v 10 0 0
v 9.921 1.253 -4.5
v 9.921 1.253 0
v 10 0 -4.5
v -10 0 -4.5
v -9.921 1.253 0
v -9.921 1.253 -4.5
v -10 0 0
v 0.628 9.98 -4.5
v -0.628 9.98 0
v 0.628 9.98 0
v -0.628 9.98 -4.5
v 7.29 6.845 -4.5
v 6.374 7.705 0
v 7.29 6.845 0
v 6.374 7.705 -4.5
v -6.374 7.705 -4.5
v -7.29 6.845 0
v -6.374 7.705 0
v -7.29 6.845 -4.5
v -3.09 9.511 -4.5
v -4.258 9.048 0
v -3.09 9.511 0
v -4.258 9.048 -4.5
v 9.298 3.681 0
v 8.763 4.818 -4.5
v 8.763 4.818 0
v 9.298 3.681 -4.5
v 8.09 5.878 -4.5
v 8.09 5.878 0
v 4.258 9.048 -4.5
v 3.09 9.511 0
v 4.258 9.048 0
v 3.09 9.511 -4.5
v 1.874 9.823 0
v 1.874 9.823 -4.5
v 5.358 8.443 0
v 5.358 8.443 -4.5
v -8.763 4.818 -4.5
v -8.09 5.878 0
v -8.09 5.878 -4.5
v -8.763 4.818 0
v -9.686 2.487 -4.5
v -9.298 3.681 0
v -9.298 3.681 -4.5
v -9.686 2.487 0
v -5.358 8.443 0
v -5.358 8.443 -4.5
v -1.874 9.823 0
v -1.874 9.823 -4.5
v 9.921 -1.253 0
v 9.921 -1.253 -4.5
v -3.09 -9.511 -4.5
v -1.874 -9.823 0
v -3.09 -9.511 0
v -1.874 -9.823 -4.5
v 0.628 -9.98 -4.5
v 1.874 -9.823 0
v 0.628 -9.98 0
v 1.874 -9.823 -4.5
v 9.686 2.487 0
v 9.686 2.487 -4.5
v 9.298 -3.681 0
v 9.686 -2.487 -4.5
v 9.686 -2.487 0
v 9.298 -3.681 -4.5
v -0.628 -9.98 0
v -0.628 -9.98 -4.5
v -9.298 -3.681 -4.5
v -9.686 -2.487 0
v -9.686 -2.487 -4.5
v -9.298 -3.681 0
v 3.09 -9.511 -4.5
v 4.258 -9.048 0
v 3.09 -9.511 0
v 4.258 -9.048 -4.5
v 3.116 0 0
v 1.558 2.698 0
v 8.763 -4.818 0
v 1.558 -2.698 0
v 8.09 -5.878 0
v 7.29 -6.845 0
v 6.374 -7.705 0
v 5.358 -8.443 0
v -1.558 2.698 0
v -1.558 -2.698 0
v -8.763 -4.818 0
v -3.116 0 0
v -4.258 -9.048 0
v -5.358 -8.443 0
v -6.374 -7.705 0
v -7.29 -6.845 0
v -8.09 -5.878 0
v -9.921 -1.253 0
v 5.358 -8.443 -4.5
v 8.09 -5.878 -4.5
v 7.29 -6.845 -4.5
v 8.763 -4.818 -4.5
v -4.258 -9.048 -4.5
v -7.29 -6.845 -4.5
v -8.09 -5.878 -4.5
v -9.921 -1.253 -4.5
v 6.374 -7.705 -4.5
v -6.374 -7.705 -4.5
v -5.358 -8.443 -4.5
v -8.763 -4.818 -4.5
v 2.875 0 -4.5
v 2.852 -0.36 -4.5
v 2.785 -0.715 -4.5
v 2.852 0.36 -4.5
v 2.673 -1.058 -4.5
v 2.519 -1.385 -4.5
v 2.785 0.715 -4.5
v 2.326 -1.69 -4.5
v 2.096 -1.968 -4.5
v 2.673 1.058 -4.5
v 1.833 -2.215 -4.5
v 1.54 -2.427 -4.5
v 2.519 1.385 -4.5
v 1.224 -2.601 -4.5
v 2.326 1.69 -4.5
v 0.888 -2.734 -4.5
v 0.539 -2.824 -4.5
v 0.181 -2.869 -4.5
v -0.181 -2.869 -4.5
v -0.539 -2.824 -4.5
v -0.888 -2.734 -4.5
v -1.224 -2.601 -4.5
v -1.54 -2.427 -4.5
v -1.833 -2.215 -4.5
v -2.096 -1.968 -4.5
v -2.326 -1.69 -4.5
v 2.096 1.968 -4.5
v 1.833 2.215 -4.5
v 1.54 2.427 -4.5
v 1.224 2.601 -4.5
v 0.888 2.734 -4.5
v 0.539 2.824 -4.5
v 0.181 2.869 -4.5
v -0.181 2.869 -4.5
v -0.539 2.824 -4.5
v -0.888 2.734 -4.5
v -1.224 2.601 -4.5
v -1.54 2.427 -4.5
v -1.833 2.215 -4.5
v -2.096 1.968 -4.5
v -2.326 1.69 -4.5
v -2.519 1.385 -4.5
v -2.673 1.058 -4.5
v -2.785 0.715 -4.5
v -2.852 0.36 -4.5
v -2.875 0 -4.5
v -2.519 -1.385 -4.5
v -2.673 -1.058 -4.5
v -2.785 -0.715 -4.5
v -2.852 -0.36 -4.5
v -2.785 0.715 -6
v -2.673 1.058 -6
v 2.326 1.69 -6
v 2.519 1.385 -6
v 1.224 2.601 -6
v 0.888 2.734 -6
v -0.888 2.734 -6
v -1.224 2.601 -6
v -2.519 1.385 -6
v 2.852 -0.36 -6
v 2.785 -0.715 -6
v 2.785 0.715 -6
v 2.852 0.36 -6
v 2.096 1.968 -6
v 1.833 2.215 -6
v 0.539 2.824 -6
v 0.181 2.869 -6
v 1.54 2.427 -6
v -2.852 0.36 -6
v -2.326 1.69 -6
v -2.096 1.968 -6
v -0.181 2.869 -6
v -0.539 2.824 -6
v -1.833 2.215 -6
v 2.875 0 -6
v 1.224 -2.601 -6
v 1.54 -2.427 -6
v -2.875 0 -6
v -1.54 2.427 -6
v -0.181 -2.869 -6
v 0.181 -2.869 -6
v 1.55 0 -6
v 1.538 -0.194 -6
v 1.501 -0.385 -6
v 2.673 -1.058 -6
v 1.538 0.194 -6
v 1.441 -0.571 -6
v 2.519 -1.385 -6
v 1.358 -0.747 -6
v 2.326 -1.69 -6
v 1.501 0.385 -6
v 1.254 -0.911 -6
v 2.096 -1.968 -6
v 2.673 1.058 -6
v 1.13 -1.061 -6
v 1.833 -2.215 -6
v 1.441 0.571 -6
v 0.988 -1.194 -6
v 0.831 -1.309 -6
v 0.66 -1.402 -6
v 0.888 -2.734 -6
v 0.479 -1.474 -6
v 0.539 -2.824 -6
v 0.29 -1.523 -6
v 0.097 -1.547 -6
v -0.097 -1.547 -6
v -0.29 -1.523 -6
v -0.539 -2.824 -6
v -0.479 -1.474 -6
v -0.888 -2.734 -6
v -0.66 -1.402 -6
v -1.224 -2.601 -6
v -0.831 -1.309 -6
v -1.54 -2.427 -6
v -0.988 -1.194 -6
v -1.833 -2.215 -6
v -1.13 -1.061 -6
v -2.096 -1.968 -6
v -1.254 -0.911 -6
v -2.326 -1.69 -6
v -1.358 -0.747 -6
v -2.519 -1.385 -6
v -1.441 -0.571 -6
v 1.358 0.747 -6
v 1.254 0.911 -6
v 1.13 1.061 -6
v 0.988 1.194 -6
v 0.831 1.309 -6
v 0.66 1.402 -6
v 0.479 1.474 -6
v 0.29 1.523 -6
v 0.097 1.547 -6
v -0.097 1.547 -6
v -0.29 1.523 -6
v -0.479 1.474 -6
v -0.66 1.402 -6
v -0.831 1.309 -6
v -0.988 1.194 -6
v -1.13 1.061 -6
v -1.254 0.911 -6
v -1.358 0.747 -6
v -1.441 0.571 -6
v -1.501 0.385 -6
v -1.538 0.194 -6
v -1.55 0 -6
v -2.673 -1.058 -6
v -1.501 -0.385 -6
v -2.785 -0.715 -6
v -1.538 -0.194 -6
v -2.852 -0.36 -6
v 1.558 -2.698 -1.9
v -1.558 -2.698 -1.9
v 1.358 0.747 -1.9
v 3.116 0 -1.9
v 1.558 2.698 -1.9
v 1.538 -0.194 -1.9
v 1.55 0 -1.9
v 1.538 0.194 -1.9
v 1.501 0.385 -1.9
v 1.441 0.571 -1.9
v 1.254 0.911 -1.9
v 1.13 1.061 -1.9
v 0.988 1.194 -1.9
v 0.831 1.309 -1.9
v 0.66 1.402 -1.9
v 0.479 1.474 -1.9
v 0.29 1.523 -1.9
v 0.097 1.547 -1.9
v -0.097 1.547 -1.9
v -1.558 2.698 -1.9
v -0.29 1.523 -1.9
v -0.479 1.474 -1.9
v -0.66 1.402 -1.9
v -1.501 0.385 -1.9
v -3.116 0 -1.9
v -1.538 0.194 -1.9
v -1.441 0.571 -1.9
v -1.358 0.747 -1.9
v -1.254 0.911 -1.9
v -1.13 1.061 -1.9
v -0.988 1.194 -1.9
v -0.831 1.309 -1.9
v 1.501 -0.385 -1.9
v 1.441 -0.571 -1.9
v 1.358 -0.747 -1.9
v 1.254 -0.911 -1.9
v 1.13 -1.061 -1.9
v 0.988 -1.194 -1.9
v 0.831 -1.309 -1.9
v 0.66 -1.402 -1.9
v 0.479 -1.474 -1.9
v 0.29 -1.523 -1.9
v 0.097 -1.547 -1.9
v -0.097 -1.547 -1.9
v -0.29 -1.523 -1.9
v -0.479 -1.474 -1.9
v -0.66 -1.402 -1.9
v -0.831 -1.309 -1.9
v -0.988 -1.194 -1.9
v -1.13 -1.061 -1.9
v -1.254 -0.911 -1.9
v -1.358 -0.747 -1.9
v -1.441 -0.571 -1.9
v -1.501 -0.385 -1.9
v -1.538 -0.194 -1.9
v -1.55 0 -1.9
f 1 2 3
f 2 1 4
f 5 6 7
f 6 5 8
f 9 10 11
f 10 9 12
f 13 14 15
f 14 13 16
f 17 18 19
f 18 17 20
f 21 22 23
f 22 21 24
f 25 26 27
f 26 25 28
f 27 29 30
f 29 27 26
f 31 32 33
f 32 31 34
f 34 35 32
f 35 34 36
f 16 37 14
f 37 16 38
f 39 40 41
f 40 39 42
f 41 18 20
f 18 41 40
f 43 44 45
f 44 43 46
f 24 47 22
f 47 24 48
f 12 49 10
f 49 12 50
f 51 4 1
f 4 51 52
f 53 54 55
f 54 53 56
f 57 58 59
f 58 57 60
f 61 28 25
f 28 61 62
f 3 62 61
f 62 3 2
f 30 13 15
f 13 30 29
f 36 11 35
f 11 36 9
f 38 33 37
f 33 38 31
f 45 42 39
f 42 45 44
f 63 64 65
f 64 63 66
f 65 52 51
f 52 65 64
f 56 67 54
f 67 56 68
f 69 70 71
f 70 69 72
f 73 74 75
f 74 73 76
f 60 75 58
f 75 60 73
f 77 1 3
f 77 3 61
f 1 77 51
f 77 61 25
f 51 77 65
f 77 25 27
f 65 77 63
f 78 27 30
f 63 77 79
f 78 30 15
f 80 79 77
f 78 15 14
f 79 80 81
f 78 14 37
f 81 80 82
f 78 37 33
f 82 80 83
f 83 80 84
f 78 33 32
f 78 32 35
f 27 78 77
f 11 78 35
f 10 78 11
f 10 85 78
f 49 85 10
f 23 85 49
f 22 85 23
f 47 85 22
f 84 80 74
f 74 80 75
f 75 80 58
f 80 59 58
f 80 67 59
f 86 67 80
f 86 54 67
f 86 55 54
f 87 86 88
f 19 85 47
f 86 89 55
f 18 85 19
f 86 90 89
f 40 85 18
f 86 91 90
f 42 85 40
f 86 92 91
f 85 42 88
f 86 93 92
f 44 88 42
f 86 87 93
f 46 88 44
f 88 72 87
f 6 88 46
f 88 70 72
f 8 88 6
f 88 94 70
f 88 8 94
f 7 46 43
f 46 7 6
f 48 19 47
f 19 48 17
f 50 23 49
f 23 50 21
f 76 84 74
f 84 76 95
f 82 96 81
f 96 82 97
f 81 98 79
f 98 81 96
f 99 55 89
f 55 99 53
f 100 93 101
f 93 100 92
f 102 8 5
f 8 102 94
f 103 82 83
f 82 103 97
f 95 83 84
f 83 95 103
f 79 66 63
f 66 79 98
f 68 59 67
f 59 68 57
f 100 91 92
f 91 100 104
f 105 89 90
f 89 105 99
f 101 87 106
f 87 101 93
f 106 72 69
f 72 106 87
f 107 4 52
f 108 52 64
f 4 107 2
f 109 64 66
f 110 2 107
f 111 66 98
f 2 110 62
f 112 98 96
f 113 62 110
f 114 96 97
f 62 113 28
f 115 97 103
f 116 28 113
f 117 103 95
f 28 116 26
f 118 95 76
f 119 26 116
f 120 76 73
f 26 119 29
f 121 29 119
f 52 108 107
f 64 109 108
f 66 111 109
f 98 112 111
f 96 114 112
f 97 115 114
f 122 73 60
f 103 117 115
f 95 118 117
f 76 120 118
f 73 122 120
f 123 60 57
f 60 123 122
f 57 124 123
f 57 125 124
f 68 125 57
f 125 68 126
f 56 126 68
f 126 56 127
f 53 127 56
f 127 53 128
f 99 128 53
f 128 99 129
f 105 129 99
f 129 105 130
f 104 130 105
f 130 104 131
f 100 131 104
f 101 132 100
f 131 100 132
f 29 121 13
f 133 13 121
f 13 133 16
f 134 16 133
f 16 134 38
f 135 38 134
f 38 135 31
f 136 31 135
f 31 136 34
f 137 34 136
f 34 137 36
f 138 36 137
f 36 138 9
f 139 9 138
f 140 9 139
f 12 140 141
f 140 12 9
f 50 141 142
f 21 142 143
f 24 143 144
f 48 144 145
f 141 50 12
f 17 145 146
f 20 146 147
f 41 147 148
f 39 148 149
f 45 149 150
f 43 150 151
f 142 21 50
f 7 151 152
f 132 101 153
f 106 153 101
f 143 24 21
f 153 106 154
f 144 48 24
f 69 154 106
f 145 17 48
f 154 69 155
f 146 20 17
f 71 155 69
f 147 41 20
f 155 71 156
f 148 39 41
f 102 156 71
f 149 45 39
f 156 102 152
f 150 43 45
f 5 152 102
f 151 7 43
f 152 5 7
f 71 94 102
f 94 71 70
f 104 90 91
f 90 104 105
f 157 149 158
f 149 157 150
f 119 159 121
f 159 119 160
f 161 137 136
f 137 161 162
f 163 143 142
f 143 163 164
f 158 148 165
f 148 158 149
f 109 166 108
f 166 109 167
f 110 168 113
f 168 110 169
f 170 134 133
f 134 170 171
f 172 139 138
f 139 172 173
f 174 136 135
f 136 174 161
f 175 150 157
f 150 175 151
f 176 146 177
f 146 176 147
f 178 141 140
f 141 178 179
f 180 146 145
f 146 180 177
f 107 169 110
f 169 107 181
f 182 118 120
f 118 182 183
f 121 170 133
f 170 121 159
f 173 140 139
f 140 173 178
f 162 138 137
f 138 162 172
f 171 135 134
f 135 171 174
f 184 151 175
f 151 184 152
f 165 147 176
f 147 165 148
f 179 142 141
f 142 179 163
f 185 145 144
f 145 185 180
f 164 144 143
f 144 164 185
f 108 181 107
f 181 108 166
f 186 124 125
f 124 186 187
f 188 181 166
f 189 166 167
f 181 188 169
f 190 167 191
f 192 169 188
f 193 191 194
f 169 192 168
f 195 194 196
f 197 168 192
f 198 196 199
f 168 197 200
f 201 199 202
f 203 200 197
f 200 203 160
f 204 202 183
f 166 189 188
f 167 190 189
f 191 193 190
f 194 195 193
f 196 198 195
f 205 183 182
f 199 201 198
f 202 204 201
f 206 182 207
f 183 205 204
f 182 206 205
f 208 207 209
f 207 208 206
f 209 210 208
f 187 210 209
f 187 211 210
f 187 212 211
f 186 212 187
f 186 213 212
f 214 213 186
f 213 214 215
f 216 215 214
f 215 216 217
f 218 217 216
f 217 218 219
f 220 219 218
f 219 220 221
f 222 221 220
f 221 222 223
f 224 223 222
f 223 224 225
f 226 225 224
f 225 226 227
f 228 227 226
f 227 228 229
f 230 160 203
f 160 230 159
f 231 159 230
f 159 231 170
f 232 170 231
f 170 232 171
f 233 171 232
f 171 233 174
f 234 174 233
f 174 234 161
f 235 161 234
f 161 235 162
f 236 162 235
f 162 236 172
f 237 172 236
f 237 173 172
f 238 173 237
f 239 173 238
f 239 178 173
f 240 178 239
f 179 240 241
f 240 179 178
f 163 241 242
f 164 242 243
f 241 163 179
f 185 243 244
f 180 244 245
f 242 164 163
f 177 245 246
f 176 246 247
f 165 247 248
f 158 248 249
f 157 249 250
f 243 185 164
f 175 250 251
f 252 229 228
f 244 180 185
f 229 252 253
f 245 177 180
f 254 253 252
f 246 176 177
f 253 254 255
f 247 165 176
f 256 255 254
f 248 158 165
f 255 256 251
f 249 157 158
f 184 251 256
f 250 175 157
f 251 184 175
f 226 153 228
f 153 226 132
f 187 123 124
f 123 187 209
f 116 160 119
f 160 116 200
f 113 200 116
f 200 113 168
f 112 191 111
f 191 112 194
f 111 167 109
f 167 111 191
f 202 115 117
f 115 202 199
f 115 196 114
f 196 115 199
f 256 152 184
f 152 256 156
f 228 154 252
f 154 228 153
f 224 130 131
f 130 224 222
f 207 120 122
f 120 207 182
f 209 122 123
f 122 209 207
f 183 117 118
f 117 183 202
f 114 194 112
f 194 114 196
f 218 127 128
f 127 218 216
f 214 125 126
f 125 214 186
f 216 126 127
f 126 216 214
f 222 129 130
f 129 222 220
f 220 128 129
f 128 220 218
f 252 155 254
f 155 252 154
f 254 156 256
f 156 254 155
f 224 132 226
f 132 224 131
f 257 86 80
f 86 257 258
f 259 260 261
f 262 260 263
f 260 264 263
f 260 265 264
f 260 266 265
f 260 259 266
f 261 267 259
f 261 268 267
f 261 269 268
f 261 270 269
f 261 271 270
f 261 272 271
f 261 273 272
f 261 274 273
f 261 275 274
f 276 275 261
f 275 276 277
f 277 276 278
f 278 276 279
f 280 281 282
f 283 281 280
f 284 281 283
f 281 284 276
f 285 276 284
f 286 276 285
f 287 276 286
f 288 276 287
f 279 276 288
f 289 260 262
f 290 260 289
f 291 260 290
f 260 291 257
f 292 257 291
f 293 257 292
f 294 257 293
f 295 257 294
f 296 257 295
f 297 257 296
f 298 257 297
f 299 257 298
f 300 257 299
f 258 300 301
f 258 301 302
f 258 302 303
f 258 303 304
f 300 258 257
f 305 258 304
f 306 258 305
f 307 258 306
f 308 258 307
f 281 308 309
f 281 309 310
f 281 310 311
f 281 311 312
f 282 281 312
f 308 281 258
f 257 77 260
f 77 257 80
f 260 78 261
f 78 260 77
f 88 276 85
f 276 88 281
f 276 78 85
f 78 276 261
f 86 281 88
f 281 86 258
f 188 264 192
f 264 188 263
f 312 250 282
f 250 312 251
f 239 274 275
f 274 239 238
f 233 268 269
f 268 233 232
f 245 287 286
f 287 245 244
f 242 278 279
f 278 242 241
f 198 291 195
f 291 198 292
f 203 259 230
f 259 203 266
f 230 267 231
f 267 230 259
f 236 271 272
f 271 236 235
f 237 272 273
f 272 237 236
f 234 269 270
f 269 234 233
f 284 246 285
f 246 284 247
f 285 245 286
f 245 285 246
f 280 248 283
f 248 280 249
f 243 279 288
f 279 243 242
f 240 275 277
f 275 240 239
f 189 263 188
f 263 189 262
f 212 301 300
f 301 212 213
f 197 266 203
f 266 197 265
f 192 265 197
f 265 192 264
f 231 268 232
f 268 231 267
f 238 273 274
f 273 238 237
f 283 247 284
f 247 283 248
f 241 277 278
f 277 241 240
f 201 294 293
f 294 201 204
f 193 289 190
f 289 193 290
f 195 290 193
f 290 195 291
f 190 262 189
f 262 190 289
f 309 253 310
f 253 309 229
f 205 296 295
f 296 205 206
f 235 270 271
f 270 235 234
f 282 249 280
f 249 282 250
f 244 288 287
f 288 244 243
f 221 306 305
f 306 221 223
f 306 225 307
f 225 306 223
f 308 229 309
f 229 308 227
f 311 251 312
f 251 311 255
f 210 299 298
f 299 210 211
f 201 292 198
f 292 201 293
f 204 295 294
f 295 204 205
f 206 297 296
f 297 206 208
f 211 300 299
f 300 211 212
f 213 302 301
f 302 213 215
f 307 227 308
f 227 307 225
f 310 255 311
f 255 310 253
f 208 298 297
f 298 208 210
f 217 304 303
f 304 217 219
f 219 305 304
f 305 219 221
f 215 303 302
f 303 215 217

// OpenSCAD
$fn = 50;

difference() {
	union() {
		translate(v = [0, 0, -4.5]) {
			cylinder(h = 4.5, r = 10.0);
		}
		#translate(v = [0, 0, -6.0]) {
			cylinder(h = 6, r = 2.875);
		}
	}
	union() {
		translate(v = [0, 0, 0]) {
			rotate(a = [0, 0, 0]) {
				difference() {
					union() {
						translate(v = [0, 0, -1.9]) {
							linear_extrude(height = 1.9) {
								polygon(points = [[3.1158, 0.0], [1.5579000000000005, 2.698361953111554], [-1.5578999999999994, 2.6983619531115544], [-3.1158, 3.815754496783323e-16], [-1.5579000000000014, -2.6983619531115535], [1.557899999999998, -2.6983619531115552]]);
							}
						}
					}
					union();
				}
			}
		}
		#translate(v = [0, 0, -100.0]) {
			cylinder(h = 200, r = 1.55);
		}
	}
}
